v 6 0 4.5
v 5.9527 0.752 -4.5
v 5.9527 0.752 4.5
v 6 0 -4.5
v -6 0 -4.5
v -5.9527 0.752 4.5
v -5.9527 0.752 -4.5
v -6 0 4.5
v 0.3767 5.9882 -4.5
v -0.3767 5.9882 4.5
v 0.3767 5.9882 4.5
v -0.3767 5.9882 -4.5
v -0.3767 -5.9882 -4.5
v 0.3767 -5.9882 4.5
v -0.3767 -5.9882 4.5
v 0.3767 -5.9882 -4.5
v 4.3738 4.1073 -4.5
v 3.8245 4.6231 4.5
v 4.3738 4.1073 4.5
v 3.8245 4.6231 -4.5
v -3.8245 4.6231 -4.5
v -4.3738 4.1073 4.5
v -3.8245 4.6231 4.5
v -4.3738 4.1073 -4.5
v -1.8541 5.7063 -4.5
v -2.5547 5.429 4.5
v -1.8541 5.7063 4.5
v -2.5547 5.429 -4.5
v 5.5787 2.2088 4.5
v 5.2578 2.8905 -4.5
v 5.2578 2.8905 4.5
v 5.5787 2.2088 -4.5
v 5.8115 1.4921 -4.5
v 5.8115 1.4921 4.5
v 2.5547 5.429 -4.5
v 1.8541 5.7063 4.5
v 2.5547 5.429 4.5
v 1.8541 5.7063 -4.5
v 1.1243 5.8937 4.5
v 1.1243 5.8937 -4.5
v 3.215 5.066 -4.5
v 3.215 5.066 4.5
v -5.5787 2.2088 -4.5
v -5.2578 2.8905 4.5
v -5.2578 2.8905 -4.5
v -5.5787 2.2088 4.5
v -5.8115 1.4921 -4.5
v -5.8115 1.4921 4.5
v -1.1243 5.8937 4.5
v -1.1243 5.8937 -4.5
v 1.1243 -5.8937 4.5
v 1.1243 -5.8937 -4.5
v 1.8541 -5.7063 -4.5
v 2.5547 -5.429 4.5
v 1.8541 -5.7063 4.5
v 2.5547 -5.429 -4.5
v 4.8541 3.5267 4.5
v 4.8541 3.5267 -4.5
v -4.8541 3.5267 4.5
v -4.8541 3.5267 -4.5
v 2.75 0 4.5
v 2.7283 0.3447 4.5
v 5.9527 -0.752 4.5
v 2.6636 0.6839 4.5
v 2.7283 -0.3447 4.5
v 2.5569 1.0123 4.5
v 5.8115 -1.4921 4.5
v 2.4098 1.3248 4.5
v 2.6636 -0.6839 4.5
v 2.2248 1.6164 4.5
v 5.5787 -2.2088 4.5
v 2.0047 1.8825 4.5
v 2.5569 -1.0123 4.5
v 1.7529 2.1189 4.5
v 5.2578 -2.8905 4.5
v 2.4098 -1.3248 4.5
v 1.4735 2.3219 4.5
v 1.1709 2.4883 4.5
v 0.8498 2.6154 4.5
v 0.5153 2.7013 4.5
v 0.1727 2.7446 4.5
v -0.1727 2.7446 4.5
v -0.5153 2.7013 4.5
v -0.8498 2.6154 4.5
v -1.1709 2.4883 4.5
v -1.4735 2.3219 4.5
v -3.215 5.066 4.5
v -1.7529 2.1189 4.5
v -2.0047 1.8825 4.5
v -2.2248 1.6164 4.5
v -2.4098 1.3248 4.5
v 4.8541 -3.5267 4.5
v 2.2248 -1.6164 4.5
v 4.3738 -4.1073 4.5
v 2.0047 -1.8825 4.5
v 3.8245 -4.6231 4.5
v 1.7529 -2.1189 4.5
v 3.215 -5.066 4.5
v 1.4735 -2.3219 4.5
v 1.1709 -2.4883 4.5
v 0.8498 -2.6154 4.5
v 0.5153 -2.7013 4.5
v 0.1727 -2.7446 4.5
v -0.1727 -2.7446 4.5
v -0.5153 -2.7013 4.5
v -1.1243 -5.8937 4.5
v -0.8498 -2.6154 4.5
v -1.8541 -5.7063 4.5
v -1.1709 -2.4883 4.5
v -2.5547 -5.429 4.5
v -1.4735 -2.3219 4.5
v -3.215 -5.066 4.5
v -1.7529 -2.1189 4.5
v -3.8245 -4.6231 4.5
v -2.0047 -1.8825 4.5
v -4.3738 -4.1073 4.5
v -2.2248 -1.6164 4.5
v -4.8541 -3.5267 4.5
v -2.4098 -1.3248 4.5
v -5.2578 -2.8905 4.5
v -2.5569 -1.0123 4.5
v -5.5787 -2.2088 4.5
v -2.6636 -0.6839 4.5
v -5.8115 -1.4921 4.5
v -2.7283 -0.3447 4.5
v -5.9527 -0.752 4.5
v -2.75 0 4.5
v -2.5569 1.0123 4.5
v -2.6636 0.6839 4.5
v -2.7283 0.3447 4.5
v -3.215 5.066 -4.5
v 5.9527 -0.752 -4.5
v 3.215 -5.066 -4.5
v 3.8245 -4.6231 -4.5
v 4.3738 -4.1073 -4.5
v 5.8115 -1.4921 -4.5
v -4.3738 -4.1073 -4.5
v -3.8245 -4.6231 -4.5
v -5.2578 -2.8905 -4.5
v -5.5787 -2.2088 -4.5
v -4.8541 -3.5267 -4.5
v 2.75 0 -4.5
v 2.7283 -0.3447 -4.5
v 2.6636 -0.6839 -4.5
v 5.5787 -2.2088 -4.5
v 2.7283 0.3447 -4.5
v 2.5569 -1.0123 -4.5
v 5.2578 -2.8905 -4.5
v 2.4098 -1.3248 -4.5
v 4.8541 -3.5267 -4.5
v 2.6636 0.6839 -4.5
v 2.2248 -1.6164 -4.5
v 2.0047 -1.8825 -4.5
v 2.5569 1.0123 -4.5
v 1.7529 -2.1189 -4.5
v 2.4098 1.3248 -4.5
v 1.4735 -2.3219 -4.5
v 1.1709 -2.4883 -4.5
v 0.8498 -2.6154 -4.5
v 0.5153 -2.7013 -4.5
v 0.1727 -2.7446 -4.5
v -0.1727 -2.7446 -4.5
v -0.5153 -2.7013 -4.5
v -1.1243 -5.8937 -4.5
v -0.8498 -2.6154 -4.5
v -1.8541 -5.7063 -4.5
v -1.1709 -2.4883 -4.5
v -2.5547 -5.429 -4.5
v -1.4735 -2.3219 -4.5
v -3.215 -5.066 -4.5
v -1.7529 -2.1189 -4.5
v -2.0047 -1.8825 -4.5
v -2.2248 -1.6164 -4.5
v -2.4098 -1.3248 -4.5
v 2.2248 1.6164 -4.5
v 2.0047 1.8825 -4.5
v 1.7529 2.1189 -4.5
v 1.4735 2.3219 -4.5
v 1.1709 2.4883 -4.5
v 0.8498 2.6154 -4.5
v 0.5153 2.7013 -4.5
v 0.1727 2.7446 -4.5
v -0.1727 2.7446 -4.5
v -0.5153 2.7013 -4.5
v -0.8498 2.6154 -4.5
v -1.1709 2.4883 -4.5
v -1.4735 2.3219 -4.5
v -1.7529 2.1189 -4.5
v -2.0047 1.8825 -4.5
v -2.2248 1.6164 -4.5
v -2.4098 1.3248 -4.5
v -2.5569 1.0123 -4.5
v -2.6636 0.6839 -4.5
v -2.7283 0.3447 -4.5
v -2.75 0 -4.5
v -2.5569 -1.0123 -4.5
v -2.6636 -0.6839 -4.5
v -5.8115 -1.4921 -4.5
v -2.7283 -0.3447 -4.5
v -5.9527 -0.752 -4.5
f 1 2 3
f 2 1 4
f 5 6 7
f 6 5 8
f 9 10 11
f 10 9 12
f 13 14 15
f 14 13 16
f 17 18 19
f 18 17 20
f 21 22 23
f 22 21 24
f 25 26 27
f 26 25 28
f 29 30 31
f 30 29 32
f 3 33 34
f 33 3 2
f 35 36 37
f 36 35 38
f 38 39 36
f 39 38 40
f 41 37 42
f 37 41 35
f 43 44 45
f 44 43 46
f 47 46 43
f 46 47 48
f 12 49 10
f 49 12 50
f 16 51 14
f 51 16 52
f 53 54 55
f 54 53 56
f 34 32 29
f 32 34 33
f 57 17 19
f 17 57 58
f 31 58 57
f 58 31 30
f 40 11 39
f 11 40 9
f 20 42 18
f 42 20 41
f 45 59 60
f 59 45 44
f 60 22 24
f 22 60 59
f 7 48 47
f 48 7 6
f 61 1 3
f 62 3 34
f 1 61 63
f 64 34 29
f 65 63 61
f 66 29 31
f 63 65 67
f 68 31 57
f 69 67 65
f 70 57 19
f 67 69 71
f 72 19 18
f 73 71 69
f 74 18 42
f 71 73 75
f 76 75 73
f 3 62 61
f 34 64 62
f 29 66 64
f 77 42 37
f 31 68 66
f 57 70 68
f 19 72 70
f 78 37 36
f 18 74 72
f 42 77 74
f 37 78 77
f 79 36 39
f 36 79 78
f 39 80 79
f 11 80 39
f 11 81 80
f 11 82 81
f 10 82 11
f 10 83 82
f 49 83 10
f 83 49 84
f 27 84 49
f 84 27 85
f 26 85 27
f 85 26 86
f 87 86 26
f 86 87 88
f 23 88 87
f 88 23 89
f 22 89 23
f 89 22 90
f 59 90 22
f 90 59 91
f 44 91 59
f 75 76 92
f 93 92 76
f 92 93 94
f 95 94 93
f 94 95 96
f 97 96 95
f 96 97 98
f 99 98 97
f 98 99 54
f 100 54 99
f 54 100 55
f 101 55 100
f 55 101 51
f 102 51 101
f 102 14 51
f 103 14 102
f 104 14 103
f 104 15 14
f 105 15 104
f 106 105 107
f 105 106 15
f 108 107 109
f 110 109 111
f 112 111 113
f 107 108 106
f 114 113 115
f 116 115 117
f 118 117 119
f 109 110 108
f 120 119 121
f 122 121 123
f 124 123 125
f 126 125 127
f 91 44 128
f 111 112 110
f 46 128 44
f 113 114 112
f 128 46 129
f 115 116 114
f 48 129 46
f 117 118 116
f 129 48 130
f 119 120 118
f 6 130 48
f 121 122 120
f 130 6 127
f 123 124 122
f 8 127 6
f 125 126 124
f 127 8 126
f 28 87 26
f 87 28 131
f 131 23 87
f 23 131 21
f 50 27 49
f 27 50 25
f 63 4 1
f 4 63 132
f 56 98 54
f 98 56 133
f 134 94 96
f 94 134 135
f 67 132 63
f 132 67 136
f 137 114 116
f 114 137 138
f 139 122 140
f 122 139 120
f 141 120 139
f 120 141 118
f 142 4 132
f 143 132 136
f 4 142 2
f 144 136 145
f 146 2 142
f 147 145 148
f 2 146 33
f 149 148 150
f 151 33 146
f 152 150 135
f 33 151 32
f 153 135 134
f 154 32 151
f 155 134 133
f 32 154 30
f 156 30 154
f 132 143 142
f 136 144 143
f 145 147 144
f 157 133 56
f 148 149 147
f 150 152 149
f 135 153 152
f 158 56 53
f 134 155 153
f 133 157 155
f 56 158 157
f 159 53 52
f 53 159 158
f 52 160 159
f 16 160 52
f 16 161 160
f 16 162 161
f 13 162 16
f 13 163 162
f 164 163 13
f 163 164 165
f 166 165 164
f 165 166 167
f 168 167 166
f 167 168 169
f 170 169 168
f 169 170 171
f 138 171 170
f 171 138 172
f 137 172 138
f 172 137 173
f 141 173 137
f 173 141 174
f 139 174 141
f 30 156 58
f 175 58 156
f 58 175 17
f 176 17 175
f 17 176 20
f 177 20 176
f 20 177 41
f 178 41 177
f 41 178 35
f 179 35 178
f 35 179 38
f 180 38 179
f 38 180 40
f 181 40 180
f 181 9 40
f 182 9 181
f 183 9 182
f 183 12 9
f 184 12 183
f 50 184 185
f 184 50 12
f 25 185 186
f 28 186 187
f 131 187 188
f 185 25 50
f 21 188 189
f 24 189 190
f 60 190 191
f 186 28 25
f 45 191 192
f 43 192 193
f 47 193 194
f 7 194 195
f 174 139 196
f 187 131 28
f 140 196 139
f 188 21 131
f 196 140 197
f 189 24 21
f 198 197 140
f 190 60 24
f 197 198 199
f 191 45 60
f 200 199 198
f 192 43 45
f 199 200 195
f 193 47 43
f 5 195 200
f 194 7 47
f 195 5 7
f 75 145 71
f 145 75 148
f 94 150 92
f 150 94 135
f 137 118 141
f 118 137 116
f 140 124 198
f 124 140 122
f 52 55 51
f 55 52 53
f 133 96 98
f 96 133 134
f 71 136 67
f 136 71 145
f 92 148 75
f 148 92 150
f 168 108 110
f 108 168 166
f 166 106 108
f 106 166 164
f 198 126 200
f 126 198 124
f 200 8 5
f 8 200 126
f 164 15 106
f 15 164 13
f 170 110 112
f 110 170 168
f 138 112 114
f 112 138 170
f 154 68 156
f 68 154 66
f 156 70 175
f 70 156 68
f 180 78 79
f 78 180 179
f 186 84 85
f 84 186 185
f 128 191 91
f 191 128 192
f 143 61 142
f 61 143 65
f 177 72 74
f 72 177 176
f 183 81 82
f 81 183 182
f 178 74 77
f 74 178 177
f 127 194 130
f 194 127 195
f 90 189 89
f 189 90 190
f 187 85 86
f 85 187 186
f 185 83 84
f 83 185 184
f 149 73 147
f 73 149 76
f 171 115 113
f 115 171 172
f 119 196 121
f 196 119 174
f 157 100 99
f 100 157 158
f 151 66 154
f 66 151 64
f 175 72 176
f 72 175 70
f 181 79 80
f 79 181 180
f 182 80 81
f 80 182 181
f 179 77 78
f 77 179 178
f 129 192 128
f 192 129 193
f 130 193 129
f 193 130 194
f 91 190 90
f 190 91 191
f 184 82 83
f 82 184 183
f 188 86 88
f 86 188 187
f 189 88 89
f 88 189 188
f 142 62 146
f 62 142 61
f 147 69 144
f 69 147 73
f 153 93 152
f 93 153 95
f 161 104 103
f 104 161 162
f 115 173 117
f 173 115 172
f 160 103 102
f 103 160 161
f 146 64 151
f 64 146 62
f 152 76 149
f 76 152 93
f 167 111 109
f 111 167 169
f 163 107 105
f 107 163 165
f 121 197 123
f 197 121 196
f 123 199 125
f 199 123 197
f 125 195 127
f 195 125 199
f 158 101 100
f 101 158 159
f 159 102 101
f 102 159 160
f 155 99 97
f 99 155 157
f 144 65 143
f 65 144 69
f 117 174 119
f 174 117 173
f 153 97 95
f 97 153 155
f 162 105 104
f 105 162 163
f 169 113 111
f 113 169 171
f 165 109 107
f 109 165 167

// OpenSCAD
$fn = 50;


difference() {
	union() {
		translate(v = [0, 0, -4.5000000000]) {
			cylinder(h = 9, r = 6.0000000000);
		}
	}
	union() {
		translate(v = [0, 0, -100.0000000000]) {
			cylinder(h = 200, r = 2.7500000000);
		}
	}
}
